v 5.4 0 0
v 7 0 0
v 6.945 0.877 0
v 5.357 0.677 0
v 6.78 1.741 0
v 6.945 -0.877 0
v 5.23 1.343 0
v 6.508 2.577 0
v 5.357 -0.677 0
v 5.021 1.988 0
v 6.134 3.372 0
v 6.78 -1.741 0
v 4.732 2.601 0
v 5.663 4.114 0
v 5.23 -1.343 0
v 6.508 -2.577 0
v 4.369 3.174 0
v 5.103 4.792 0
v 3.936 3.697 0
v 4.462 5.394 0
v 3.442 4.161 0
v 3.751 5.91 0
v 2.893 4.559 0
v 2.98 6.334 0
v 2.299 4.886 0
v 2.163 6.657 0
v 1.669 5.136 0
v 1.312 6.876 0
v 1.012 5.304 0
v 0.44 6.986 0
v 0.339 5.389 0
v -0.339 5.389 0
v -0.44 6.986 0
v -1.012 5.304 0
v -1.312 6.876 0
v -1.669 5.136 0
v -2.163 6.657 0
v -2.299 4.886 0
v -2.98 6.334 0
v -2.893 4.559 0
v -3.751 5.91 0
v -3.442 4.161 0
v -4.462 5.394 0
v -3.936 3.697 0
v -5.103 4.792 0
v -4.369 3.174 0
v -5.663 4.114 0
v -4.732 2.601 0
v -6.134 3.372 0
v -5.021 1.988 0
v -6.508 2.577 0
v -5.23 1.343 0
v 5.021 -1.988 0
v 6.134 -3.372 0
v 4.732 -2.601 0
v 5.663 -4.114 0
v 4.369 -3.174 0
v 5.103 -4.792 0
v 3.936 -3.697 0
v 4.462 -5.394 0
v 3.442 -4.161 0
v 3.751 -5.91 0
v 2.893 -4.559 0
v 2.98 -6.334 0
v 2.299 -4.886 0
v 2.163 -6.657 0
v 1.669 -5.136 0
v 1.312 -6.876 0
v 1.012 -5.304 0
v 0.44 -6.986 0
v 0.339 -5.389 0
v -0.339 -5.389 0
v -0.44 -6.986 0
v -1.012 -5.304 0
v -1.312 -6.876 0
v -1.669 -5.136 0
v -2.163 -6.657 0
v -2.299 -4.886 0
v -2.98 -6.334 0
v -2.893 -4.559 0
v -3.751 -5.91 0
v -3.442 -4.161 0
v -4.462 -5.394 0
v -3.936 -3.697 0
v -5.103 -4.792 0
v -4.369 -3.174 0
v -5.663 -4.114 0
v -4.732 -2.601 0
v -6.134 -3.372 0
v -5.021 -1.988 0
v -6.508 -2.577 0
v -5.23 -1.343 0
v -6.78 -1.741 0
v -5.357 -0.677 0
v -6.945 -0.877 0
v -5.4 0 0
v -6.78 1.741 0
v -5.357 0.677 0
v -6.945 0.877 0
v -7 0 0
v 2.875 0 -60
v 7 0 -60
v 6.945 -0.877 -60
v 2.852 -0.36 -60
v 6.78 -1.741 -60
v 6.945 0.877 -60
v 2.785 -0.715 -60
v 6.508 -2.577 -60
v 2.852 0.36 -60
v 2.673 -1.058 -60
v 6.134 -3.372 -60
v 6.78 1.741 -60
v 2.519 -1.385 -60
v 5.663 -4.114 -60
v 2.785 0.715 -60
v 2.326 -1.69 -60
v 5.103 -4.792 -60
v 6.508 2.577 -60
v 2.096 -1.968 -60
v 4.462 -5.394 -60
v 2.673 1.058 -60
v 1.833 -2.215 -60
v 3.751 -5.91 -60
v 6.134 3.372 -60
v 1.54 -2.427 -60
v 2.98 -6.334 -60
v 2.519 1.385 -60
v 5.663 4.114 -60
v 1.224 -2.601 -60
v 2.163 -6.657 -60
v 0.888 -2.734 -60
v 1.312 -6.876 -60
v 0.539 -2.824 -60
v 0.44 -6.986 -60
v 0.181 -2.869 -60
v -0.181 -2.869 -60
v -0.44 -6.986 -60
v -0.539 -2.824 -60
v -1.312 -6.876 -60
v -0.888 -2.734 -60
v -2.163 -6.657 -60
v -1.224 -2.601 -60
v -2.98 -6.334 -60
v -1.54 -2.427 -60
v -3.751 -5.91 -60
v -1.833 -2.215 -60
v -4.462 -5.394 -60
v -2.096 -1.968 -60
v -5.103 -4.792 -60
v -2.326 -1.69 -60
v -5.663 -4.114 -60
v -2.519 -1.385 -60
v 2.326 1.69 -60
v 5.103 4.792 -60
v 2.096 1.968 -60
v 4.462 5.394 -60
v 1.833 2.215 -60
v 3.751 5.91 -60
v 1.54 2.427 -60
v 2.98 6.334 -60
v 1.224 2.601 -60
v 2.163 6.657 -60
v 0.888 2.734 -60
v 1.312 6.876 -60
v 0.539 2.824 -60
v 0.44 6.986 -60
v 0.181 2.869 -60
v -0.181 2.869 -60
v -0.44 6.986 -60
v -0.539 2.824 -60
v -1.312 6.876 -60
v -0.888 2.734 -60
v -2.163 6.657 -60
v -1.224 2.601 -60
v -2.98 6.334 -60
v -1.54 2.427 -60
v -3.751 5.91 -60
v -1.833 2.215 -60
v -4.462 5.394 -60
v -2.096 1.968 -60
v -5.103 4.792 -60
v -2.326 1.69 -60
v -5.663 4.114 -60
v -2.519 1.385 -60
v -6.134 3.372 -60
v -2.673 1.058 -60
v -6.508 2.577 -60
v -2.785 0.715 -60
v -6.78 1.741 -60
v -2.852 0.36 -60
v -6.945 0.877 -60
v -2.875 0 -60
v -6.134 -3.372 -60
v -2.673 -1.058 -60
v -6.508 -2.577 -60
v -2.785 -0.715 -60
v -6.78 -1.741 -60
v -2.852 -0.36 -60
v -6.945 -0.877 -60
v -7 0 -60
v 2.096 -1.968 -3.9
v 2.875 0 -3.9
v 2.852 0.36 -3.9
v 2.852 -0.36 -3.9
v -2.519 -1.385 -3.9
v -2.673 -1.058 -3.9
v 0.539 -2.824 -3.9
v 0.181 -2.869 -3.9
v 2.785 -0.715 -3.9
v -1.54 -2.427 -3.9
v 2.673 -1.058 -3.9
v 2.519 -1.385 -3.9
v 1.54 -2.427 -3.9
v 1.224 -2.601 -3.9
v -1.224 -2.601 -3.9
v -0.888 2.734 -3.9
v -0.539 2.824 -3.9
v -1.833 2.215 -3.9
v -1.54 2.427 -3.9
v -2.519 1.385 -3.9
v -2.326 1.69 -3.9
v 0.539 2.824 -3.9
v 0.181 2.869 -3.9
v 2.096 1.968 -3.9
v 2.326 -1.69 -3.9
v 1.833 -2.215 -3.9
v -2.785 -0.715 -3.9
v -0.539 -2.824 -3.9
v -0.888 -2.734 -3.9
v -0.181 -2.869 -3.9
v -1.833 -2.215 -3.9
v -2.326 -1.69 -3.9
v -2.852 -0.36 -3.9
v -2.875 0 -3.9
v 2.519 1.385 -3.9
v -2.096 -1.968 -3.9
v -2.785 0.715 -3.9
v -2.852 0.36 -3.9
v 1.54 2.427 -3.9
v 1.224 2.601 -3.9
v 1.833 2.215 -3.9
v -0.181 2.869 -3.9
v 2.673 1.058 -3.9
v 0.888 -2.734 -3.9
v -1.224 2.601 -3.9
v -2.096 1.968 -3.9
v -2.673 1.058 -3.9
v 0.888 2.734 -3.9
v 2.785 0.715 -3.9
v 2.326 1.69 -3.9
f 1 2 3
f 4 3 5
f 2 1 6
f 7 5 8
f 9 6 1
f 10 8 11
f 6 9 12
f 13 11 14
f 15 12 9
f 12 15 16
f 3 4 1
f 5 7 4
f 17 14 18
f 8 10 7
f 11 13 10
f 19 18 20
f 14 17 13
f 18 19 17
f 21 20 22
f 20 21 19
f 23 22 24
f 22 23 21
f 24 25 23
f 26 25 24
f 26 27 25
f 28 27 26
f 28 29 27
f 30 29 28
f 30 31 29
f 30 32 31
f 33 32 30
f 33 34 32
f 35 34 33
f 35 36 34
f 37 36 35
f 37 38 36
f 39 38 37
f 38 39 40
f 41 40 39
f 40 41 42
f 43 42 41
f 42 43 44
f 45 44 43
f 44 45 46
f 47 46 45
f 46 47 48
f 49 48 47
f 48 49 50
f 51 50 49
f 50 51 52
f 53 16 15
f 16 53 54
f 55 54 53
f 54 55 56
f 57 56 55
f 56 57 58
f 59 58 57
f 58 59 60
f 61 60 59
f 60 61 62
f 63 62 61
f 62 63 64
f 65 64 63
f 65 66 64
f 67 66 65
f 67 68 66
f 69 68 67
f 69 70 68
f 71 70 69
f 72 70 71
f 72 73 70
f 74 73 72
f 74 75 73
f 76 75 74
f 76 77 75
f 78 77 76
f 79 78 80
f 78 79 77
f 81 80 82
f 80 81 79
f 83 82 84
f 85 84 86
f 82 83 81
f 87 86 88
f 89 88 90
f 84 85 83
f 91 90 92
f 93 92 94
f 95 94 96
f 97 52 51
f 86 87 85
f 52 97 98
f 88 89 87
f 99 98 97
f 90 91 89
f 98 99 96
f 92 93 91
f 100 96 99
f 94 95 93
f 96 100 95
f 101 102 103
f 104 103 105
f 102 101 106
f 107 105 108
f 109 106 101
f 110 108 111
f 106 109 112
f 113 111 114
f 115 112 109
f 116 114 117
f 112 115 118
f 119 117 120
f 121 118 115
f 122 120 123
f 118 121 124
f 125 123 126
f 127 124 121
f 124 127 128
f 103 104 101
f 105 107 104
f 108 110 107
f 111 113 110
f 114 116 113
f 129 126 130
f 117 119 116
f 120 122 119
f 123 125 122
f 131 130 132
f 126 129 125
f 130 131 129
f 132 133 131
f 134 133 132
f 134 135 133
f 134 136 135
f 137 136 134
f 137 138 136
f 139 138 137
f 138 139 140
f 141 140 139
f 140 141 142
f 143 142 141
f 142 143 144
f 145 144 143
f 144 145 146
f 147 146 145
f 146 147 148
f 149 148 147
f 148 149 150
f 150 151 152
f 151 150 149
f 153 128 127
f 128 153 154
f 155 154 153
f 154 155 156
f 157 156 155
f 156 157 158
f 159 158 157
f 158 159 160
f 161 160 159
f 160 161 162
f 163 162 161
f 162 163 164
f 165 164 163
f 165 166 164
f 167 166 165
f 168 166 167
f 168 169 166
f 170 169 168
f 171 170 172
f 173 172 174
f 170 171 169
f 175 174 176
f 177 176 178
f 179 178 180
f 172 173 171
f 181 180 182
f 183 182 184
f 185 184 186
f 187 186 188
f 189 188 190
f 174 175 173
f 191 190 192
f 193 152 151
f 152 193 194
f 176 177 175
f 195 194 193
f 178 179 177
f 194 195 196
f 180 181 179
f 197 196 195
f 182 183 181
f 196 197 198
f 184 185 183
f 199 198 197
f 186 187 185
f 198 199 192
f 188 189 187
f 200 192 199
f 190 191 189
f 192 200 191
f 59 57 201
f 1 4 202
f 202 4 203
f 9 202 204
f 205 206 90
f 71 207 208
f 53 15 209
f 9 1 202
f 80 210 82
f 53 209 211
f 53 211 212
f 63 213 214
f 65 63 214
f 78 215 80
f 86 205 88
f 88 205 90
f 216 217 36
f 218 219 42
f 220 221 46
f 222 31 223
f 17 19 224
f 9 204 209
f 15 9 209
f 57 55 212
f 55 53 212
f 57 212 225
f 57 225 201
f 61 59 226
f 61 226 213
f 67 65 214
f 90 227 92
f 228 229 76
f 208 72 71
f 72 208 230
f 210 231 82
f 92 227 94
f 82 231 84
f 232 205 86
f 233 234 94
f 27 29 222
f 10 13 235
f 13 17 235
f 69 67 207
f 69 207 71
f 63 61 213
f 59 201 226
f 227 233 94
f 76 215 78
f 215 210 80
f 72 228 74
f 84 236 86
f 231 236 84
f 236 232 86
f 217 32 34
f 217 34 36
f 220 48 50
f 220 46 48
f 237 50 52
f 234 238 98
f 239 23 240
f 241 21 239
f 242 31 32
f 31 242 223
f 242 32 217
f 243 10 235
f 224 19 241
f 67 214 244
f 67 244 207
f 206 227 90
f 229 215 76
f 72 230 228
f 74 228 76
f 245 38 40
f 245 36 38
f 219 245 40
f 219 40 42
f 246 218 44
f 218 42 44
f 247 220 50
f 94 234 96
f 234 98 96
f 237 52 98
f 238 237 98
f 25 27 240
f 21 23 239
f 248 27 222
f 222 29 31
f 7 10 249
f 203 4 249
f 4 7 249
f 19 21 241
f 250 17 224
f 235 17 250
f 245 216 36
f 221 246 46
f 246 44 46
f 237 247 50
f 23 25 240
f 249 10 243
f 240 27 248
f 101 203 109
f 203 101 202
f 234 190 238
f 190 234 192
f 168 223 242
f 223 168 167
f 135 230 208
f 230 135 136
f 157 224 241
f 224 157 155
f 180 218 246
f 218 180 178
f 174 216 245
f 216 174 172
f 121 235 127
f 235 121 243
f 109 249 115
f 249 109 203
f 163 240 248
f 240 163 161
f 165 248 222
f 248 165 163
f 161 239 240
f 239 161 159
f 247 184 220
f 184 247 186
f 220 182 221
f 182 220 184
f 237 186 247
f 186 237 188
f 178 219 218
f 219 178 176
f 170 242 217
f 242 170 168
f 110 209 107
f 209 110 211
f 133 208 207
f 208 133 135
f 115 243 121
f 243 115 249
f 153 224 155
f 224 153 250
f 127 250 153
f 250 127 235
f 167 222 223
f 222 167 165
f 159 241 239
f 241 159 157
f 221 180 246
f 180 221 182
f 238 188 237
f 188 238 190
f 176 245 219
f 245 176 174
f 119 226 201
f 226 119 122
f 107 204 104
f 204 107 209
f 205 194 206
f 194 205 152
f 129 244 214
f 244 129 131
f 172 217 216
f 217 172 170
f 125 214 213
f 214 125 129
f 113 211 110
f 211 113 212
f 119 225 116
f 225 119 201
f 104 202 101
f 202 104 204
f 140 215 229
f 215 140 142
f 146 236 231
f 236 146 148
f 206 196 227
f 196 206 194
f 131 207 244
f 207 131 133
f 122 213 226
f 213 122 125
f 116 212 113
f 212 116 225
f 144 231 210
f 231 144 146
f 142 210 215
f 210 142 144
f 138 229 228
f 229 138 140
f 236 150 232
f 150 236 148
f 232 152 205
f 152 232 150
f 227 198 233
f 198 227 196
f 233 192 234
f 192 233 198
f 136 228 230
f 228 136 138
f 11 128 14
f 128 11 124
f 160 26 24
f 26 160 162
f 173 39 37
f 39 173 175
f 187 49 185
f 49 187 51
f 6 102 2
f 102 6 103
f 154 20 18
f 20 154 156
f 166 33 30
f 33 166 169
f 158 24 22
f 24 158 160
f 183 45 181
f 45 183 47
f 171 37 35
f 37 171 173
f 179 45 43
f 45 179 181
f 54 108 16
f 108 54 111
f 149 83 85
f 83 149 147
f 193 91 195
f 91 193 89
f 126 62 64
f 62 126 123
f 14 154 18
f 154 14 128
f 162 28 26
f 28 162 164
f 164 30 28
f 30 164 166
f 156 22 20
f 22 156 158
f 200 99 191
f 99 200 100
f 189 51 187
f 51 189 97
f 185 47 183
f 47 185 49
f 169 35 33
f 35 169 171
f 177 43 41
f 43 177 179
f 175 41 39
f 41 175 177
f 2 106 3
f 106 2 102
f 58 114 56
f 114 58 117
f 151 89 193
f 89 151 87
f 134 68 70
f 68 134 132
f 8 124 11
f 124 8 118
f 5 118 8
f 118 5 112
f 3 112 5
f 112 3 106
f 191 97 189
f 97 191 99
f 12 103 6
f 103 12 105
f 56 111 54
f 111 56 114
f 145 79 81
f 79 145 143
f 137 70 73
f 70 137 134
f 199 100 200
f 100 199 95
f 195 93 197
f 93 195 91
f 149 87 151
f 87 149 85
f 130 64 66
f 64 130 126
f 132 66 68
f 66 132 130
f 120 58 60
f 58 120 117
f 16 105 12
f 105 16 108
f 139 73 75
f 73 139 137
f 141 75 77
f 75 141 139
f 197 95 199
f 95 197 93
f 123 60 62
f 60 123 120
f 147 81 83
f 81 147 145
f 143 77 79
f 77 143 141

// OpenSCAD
$fn = 50;


difference() {
	union() {
		translate(v = [0, 0, -60.0000000000]) {
			cylinder(h = 60, r = 7.0000000000);
		}
		cylinder(h = 0, r = 17.0000000000);
	}
	union() {
		translate(v = [0, 0, 0]) {
			rotate(a = [0, 0, 0]) {
				difference() {
					union() {
						#translate(v = [0, 0, -60.0000000000]) {
							cylinder(h = 60, r = 2.6000000000);
						}
						#translate(v = [0, 0, -3.9000000000]) {
							cylinder(h = 3.9000000000, r = 7.0000000000, r1 = 2.8750000000, r2 = 5.4000000000);
						}
						#translate(v = [0, 0, -60.0000000000]) {
							cylinder(h = 60, r = 2.8750000000);
						}
						#translate(v = [0, 0, -60.0000000000]) {
							cylinder(h = 60, r = 2.6000000000);
						}
					}
					union();
				}
			}
		}
	}
}
